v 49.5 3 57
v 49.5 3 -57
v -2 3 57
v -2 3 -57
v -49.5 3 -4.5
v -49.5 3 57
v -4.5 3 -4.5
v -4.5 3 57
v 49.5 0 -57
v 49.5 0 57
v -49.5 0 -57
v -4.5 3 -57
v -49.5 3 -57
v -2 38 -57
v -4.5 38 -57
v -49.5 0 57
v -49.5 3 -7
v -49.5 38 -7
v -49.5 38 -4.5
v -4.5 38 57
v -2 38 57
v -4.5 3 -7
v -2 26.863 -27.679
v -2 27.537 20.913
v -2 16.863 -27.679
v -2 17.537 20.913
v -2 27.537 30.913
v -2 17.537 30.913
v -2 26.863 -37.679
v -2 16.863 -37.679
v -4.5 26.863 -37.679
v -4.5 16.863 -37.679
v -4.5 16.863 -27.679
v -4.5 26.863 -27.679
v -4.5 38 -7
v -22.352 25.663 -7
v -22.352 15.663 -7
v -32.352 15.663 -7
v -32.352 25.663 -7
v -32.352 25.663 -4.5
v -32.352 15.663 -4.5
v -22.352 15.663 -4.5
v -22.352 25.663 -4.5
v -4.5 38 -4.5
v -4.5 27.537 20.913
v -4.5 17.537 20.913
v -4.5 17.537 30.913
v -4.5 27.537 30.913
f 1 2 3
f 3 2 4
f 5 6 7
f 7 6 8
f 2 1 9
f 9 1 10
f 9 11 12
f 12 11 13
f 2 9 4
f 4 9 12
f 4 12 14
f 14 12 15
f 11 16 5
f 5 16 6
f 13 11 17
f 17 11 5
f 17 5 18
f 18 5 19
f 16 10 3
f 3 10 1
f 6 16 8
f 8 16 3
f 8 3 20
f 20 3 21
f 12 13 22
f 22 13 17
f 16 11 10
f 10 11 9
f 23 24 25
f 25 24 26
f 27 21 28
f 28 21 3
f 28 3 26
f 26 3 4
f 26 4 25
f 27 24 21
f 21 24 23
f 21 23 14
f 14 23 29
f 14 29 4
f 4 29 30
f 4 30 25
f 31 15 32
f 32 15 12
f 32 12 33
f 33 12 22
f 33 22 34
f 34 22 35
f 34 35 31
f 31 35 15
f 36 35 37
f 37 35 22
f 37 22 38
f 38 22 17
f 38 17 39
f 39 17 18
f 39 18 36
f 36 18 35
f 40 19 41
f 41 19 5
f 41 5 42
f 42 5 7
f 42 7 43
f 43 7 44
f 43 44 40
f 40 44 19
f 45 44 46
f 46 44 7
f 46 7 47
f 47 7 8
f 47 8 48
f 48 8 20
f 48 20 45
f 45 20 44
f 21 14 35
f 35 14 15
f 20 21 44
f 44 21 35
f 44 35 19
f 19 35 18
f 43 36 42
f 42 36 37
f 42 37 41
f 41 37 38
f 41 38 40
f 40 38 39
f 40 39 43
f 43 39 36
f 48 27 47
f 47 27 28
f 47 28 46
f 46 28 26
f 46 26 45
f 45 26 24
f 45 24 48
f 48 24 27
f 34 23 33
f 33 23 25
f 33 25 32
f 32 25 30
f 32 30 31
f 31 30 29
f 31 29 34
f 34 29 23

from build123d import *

# Parameters (mm, degrees)
SKETCH1_W           = 99
SKETCH1_H           = 114
BOSS_EXTRUDE1_DEPTH = 3
BOSS_EXTRUDE2_DEPTH = 35
SKETCH3_W           = 10
SKETCH3_H           = 10
CUT_EXTRUDE1_DEPTH  = 35
SKETCH4_W           = 10
SKETCH4_H           = 10
CUT_EXTRUDE2_DEPTH  = 35


with BuildPart() as part:
    # Sketch1 → Boss-Extrude1 (new body)
    with BuildSketch(Plane(origin=(0, 0, 0), x_dir=(1, 0, 0), z_dir=(0, 1, 0))):
        Rectangle(SKETCH1_W, SKETCH1_H)
    extrude(amount=BOSS_EXTRUDE1_DEPTH)

    # Sketch2 → Boss-Extrude2 (add)
    with BuildSketch(Plane(origin=(0, 3, 0), x_dir=(1, 0, 0), z_dir=(0, 1, 0))):
        Polygon((-2, 57), (-4.5, 57), (-4.5, 7), (-49.5, 7), (-49.5, 4.5), (-4.5, 4.5), (-4.5, -57), (-2, -57), align=None)
    extrude(amount=BOSS_EXTRUDE2_DEPTH)

    # Sketch3 → Cut-Extrude1 (cut)
    with BuildSketch(Plane.XY.offset(-4.5)):
        with Locations((-27.352089656, 20.663342565)):
            Rectangle(SKETCH3_W, SKETCH3_H)
    extrude(amount=-CUT_EXTRUDE1_DEPTH, mode=Mode.SUBTRACT)

    # Sketch4 → Cut-Extrude2 (cut)
    with BuildSketch(Plane.ZY.offset(4.5)):
        with Locations((-32.678506246, 21.863269453)):
            Rectangle(SKETCH4_W, SKETCH4_H)
        with Locations((25.912956103, 22.537357248)):
            Rectangle(SKETCH4_W, SKETCH4_H)
    extrude(amount=-CUT_EXTRUDE2_DEPTH, mode=Mode.SUBTRACT)


solid = part.part
